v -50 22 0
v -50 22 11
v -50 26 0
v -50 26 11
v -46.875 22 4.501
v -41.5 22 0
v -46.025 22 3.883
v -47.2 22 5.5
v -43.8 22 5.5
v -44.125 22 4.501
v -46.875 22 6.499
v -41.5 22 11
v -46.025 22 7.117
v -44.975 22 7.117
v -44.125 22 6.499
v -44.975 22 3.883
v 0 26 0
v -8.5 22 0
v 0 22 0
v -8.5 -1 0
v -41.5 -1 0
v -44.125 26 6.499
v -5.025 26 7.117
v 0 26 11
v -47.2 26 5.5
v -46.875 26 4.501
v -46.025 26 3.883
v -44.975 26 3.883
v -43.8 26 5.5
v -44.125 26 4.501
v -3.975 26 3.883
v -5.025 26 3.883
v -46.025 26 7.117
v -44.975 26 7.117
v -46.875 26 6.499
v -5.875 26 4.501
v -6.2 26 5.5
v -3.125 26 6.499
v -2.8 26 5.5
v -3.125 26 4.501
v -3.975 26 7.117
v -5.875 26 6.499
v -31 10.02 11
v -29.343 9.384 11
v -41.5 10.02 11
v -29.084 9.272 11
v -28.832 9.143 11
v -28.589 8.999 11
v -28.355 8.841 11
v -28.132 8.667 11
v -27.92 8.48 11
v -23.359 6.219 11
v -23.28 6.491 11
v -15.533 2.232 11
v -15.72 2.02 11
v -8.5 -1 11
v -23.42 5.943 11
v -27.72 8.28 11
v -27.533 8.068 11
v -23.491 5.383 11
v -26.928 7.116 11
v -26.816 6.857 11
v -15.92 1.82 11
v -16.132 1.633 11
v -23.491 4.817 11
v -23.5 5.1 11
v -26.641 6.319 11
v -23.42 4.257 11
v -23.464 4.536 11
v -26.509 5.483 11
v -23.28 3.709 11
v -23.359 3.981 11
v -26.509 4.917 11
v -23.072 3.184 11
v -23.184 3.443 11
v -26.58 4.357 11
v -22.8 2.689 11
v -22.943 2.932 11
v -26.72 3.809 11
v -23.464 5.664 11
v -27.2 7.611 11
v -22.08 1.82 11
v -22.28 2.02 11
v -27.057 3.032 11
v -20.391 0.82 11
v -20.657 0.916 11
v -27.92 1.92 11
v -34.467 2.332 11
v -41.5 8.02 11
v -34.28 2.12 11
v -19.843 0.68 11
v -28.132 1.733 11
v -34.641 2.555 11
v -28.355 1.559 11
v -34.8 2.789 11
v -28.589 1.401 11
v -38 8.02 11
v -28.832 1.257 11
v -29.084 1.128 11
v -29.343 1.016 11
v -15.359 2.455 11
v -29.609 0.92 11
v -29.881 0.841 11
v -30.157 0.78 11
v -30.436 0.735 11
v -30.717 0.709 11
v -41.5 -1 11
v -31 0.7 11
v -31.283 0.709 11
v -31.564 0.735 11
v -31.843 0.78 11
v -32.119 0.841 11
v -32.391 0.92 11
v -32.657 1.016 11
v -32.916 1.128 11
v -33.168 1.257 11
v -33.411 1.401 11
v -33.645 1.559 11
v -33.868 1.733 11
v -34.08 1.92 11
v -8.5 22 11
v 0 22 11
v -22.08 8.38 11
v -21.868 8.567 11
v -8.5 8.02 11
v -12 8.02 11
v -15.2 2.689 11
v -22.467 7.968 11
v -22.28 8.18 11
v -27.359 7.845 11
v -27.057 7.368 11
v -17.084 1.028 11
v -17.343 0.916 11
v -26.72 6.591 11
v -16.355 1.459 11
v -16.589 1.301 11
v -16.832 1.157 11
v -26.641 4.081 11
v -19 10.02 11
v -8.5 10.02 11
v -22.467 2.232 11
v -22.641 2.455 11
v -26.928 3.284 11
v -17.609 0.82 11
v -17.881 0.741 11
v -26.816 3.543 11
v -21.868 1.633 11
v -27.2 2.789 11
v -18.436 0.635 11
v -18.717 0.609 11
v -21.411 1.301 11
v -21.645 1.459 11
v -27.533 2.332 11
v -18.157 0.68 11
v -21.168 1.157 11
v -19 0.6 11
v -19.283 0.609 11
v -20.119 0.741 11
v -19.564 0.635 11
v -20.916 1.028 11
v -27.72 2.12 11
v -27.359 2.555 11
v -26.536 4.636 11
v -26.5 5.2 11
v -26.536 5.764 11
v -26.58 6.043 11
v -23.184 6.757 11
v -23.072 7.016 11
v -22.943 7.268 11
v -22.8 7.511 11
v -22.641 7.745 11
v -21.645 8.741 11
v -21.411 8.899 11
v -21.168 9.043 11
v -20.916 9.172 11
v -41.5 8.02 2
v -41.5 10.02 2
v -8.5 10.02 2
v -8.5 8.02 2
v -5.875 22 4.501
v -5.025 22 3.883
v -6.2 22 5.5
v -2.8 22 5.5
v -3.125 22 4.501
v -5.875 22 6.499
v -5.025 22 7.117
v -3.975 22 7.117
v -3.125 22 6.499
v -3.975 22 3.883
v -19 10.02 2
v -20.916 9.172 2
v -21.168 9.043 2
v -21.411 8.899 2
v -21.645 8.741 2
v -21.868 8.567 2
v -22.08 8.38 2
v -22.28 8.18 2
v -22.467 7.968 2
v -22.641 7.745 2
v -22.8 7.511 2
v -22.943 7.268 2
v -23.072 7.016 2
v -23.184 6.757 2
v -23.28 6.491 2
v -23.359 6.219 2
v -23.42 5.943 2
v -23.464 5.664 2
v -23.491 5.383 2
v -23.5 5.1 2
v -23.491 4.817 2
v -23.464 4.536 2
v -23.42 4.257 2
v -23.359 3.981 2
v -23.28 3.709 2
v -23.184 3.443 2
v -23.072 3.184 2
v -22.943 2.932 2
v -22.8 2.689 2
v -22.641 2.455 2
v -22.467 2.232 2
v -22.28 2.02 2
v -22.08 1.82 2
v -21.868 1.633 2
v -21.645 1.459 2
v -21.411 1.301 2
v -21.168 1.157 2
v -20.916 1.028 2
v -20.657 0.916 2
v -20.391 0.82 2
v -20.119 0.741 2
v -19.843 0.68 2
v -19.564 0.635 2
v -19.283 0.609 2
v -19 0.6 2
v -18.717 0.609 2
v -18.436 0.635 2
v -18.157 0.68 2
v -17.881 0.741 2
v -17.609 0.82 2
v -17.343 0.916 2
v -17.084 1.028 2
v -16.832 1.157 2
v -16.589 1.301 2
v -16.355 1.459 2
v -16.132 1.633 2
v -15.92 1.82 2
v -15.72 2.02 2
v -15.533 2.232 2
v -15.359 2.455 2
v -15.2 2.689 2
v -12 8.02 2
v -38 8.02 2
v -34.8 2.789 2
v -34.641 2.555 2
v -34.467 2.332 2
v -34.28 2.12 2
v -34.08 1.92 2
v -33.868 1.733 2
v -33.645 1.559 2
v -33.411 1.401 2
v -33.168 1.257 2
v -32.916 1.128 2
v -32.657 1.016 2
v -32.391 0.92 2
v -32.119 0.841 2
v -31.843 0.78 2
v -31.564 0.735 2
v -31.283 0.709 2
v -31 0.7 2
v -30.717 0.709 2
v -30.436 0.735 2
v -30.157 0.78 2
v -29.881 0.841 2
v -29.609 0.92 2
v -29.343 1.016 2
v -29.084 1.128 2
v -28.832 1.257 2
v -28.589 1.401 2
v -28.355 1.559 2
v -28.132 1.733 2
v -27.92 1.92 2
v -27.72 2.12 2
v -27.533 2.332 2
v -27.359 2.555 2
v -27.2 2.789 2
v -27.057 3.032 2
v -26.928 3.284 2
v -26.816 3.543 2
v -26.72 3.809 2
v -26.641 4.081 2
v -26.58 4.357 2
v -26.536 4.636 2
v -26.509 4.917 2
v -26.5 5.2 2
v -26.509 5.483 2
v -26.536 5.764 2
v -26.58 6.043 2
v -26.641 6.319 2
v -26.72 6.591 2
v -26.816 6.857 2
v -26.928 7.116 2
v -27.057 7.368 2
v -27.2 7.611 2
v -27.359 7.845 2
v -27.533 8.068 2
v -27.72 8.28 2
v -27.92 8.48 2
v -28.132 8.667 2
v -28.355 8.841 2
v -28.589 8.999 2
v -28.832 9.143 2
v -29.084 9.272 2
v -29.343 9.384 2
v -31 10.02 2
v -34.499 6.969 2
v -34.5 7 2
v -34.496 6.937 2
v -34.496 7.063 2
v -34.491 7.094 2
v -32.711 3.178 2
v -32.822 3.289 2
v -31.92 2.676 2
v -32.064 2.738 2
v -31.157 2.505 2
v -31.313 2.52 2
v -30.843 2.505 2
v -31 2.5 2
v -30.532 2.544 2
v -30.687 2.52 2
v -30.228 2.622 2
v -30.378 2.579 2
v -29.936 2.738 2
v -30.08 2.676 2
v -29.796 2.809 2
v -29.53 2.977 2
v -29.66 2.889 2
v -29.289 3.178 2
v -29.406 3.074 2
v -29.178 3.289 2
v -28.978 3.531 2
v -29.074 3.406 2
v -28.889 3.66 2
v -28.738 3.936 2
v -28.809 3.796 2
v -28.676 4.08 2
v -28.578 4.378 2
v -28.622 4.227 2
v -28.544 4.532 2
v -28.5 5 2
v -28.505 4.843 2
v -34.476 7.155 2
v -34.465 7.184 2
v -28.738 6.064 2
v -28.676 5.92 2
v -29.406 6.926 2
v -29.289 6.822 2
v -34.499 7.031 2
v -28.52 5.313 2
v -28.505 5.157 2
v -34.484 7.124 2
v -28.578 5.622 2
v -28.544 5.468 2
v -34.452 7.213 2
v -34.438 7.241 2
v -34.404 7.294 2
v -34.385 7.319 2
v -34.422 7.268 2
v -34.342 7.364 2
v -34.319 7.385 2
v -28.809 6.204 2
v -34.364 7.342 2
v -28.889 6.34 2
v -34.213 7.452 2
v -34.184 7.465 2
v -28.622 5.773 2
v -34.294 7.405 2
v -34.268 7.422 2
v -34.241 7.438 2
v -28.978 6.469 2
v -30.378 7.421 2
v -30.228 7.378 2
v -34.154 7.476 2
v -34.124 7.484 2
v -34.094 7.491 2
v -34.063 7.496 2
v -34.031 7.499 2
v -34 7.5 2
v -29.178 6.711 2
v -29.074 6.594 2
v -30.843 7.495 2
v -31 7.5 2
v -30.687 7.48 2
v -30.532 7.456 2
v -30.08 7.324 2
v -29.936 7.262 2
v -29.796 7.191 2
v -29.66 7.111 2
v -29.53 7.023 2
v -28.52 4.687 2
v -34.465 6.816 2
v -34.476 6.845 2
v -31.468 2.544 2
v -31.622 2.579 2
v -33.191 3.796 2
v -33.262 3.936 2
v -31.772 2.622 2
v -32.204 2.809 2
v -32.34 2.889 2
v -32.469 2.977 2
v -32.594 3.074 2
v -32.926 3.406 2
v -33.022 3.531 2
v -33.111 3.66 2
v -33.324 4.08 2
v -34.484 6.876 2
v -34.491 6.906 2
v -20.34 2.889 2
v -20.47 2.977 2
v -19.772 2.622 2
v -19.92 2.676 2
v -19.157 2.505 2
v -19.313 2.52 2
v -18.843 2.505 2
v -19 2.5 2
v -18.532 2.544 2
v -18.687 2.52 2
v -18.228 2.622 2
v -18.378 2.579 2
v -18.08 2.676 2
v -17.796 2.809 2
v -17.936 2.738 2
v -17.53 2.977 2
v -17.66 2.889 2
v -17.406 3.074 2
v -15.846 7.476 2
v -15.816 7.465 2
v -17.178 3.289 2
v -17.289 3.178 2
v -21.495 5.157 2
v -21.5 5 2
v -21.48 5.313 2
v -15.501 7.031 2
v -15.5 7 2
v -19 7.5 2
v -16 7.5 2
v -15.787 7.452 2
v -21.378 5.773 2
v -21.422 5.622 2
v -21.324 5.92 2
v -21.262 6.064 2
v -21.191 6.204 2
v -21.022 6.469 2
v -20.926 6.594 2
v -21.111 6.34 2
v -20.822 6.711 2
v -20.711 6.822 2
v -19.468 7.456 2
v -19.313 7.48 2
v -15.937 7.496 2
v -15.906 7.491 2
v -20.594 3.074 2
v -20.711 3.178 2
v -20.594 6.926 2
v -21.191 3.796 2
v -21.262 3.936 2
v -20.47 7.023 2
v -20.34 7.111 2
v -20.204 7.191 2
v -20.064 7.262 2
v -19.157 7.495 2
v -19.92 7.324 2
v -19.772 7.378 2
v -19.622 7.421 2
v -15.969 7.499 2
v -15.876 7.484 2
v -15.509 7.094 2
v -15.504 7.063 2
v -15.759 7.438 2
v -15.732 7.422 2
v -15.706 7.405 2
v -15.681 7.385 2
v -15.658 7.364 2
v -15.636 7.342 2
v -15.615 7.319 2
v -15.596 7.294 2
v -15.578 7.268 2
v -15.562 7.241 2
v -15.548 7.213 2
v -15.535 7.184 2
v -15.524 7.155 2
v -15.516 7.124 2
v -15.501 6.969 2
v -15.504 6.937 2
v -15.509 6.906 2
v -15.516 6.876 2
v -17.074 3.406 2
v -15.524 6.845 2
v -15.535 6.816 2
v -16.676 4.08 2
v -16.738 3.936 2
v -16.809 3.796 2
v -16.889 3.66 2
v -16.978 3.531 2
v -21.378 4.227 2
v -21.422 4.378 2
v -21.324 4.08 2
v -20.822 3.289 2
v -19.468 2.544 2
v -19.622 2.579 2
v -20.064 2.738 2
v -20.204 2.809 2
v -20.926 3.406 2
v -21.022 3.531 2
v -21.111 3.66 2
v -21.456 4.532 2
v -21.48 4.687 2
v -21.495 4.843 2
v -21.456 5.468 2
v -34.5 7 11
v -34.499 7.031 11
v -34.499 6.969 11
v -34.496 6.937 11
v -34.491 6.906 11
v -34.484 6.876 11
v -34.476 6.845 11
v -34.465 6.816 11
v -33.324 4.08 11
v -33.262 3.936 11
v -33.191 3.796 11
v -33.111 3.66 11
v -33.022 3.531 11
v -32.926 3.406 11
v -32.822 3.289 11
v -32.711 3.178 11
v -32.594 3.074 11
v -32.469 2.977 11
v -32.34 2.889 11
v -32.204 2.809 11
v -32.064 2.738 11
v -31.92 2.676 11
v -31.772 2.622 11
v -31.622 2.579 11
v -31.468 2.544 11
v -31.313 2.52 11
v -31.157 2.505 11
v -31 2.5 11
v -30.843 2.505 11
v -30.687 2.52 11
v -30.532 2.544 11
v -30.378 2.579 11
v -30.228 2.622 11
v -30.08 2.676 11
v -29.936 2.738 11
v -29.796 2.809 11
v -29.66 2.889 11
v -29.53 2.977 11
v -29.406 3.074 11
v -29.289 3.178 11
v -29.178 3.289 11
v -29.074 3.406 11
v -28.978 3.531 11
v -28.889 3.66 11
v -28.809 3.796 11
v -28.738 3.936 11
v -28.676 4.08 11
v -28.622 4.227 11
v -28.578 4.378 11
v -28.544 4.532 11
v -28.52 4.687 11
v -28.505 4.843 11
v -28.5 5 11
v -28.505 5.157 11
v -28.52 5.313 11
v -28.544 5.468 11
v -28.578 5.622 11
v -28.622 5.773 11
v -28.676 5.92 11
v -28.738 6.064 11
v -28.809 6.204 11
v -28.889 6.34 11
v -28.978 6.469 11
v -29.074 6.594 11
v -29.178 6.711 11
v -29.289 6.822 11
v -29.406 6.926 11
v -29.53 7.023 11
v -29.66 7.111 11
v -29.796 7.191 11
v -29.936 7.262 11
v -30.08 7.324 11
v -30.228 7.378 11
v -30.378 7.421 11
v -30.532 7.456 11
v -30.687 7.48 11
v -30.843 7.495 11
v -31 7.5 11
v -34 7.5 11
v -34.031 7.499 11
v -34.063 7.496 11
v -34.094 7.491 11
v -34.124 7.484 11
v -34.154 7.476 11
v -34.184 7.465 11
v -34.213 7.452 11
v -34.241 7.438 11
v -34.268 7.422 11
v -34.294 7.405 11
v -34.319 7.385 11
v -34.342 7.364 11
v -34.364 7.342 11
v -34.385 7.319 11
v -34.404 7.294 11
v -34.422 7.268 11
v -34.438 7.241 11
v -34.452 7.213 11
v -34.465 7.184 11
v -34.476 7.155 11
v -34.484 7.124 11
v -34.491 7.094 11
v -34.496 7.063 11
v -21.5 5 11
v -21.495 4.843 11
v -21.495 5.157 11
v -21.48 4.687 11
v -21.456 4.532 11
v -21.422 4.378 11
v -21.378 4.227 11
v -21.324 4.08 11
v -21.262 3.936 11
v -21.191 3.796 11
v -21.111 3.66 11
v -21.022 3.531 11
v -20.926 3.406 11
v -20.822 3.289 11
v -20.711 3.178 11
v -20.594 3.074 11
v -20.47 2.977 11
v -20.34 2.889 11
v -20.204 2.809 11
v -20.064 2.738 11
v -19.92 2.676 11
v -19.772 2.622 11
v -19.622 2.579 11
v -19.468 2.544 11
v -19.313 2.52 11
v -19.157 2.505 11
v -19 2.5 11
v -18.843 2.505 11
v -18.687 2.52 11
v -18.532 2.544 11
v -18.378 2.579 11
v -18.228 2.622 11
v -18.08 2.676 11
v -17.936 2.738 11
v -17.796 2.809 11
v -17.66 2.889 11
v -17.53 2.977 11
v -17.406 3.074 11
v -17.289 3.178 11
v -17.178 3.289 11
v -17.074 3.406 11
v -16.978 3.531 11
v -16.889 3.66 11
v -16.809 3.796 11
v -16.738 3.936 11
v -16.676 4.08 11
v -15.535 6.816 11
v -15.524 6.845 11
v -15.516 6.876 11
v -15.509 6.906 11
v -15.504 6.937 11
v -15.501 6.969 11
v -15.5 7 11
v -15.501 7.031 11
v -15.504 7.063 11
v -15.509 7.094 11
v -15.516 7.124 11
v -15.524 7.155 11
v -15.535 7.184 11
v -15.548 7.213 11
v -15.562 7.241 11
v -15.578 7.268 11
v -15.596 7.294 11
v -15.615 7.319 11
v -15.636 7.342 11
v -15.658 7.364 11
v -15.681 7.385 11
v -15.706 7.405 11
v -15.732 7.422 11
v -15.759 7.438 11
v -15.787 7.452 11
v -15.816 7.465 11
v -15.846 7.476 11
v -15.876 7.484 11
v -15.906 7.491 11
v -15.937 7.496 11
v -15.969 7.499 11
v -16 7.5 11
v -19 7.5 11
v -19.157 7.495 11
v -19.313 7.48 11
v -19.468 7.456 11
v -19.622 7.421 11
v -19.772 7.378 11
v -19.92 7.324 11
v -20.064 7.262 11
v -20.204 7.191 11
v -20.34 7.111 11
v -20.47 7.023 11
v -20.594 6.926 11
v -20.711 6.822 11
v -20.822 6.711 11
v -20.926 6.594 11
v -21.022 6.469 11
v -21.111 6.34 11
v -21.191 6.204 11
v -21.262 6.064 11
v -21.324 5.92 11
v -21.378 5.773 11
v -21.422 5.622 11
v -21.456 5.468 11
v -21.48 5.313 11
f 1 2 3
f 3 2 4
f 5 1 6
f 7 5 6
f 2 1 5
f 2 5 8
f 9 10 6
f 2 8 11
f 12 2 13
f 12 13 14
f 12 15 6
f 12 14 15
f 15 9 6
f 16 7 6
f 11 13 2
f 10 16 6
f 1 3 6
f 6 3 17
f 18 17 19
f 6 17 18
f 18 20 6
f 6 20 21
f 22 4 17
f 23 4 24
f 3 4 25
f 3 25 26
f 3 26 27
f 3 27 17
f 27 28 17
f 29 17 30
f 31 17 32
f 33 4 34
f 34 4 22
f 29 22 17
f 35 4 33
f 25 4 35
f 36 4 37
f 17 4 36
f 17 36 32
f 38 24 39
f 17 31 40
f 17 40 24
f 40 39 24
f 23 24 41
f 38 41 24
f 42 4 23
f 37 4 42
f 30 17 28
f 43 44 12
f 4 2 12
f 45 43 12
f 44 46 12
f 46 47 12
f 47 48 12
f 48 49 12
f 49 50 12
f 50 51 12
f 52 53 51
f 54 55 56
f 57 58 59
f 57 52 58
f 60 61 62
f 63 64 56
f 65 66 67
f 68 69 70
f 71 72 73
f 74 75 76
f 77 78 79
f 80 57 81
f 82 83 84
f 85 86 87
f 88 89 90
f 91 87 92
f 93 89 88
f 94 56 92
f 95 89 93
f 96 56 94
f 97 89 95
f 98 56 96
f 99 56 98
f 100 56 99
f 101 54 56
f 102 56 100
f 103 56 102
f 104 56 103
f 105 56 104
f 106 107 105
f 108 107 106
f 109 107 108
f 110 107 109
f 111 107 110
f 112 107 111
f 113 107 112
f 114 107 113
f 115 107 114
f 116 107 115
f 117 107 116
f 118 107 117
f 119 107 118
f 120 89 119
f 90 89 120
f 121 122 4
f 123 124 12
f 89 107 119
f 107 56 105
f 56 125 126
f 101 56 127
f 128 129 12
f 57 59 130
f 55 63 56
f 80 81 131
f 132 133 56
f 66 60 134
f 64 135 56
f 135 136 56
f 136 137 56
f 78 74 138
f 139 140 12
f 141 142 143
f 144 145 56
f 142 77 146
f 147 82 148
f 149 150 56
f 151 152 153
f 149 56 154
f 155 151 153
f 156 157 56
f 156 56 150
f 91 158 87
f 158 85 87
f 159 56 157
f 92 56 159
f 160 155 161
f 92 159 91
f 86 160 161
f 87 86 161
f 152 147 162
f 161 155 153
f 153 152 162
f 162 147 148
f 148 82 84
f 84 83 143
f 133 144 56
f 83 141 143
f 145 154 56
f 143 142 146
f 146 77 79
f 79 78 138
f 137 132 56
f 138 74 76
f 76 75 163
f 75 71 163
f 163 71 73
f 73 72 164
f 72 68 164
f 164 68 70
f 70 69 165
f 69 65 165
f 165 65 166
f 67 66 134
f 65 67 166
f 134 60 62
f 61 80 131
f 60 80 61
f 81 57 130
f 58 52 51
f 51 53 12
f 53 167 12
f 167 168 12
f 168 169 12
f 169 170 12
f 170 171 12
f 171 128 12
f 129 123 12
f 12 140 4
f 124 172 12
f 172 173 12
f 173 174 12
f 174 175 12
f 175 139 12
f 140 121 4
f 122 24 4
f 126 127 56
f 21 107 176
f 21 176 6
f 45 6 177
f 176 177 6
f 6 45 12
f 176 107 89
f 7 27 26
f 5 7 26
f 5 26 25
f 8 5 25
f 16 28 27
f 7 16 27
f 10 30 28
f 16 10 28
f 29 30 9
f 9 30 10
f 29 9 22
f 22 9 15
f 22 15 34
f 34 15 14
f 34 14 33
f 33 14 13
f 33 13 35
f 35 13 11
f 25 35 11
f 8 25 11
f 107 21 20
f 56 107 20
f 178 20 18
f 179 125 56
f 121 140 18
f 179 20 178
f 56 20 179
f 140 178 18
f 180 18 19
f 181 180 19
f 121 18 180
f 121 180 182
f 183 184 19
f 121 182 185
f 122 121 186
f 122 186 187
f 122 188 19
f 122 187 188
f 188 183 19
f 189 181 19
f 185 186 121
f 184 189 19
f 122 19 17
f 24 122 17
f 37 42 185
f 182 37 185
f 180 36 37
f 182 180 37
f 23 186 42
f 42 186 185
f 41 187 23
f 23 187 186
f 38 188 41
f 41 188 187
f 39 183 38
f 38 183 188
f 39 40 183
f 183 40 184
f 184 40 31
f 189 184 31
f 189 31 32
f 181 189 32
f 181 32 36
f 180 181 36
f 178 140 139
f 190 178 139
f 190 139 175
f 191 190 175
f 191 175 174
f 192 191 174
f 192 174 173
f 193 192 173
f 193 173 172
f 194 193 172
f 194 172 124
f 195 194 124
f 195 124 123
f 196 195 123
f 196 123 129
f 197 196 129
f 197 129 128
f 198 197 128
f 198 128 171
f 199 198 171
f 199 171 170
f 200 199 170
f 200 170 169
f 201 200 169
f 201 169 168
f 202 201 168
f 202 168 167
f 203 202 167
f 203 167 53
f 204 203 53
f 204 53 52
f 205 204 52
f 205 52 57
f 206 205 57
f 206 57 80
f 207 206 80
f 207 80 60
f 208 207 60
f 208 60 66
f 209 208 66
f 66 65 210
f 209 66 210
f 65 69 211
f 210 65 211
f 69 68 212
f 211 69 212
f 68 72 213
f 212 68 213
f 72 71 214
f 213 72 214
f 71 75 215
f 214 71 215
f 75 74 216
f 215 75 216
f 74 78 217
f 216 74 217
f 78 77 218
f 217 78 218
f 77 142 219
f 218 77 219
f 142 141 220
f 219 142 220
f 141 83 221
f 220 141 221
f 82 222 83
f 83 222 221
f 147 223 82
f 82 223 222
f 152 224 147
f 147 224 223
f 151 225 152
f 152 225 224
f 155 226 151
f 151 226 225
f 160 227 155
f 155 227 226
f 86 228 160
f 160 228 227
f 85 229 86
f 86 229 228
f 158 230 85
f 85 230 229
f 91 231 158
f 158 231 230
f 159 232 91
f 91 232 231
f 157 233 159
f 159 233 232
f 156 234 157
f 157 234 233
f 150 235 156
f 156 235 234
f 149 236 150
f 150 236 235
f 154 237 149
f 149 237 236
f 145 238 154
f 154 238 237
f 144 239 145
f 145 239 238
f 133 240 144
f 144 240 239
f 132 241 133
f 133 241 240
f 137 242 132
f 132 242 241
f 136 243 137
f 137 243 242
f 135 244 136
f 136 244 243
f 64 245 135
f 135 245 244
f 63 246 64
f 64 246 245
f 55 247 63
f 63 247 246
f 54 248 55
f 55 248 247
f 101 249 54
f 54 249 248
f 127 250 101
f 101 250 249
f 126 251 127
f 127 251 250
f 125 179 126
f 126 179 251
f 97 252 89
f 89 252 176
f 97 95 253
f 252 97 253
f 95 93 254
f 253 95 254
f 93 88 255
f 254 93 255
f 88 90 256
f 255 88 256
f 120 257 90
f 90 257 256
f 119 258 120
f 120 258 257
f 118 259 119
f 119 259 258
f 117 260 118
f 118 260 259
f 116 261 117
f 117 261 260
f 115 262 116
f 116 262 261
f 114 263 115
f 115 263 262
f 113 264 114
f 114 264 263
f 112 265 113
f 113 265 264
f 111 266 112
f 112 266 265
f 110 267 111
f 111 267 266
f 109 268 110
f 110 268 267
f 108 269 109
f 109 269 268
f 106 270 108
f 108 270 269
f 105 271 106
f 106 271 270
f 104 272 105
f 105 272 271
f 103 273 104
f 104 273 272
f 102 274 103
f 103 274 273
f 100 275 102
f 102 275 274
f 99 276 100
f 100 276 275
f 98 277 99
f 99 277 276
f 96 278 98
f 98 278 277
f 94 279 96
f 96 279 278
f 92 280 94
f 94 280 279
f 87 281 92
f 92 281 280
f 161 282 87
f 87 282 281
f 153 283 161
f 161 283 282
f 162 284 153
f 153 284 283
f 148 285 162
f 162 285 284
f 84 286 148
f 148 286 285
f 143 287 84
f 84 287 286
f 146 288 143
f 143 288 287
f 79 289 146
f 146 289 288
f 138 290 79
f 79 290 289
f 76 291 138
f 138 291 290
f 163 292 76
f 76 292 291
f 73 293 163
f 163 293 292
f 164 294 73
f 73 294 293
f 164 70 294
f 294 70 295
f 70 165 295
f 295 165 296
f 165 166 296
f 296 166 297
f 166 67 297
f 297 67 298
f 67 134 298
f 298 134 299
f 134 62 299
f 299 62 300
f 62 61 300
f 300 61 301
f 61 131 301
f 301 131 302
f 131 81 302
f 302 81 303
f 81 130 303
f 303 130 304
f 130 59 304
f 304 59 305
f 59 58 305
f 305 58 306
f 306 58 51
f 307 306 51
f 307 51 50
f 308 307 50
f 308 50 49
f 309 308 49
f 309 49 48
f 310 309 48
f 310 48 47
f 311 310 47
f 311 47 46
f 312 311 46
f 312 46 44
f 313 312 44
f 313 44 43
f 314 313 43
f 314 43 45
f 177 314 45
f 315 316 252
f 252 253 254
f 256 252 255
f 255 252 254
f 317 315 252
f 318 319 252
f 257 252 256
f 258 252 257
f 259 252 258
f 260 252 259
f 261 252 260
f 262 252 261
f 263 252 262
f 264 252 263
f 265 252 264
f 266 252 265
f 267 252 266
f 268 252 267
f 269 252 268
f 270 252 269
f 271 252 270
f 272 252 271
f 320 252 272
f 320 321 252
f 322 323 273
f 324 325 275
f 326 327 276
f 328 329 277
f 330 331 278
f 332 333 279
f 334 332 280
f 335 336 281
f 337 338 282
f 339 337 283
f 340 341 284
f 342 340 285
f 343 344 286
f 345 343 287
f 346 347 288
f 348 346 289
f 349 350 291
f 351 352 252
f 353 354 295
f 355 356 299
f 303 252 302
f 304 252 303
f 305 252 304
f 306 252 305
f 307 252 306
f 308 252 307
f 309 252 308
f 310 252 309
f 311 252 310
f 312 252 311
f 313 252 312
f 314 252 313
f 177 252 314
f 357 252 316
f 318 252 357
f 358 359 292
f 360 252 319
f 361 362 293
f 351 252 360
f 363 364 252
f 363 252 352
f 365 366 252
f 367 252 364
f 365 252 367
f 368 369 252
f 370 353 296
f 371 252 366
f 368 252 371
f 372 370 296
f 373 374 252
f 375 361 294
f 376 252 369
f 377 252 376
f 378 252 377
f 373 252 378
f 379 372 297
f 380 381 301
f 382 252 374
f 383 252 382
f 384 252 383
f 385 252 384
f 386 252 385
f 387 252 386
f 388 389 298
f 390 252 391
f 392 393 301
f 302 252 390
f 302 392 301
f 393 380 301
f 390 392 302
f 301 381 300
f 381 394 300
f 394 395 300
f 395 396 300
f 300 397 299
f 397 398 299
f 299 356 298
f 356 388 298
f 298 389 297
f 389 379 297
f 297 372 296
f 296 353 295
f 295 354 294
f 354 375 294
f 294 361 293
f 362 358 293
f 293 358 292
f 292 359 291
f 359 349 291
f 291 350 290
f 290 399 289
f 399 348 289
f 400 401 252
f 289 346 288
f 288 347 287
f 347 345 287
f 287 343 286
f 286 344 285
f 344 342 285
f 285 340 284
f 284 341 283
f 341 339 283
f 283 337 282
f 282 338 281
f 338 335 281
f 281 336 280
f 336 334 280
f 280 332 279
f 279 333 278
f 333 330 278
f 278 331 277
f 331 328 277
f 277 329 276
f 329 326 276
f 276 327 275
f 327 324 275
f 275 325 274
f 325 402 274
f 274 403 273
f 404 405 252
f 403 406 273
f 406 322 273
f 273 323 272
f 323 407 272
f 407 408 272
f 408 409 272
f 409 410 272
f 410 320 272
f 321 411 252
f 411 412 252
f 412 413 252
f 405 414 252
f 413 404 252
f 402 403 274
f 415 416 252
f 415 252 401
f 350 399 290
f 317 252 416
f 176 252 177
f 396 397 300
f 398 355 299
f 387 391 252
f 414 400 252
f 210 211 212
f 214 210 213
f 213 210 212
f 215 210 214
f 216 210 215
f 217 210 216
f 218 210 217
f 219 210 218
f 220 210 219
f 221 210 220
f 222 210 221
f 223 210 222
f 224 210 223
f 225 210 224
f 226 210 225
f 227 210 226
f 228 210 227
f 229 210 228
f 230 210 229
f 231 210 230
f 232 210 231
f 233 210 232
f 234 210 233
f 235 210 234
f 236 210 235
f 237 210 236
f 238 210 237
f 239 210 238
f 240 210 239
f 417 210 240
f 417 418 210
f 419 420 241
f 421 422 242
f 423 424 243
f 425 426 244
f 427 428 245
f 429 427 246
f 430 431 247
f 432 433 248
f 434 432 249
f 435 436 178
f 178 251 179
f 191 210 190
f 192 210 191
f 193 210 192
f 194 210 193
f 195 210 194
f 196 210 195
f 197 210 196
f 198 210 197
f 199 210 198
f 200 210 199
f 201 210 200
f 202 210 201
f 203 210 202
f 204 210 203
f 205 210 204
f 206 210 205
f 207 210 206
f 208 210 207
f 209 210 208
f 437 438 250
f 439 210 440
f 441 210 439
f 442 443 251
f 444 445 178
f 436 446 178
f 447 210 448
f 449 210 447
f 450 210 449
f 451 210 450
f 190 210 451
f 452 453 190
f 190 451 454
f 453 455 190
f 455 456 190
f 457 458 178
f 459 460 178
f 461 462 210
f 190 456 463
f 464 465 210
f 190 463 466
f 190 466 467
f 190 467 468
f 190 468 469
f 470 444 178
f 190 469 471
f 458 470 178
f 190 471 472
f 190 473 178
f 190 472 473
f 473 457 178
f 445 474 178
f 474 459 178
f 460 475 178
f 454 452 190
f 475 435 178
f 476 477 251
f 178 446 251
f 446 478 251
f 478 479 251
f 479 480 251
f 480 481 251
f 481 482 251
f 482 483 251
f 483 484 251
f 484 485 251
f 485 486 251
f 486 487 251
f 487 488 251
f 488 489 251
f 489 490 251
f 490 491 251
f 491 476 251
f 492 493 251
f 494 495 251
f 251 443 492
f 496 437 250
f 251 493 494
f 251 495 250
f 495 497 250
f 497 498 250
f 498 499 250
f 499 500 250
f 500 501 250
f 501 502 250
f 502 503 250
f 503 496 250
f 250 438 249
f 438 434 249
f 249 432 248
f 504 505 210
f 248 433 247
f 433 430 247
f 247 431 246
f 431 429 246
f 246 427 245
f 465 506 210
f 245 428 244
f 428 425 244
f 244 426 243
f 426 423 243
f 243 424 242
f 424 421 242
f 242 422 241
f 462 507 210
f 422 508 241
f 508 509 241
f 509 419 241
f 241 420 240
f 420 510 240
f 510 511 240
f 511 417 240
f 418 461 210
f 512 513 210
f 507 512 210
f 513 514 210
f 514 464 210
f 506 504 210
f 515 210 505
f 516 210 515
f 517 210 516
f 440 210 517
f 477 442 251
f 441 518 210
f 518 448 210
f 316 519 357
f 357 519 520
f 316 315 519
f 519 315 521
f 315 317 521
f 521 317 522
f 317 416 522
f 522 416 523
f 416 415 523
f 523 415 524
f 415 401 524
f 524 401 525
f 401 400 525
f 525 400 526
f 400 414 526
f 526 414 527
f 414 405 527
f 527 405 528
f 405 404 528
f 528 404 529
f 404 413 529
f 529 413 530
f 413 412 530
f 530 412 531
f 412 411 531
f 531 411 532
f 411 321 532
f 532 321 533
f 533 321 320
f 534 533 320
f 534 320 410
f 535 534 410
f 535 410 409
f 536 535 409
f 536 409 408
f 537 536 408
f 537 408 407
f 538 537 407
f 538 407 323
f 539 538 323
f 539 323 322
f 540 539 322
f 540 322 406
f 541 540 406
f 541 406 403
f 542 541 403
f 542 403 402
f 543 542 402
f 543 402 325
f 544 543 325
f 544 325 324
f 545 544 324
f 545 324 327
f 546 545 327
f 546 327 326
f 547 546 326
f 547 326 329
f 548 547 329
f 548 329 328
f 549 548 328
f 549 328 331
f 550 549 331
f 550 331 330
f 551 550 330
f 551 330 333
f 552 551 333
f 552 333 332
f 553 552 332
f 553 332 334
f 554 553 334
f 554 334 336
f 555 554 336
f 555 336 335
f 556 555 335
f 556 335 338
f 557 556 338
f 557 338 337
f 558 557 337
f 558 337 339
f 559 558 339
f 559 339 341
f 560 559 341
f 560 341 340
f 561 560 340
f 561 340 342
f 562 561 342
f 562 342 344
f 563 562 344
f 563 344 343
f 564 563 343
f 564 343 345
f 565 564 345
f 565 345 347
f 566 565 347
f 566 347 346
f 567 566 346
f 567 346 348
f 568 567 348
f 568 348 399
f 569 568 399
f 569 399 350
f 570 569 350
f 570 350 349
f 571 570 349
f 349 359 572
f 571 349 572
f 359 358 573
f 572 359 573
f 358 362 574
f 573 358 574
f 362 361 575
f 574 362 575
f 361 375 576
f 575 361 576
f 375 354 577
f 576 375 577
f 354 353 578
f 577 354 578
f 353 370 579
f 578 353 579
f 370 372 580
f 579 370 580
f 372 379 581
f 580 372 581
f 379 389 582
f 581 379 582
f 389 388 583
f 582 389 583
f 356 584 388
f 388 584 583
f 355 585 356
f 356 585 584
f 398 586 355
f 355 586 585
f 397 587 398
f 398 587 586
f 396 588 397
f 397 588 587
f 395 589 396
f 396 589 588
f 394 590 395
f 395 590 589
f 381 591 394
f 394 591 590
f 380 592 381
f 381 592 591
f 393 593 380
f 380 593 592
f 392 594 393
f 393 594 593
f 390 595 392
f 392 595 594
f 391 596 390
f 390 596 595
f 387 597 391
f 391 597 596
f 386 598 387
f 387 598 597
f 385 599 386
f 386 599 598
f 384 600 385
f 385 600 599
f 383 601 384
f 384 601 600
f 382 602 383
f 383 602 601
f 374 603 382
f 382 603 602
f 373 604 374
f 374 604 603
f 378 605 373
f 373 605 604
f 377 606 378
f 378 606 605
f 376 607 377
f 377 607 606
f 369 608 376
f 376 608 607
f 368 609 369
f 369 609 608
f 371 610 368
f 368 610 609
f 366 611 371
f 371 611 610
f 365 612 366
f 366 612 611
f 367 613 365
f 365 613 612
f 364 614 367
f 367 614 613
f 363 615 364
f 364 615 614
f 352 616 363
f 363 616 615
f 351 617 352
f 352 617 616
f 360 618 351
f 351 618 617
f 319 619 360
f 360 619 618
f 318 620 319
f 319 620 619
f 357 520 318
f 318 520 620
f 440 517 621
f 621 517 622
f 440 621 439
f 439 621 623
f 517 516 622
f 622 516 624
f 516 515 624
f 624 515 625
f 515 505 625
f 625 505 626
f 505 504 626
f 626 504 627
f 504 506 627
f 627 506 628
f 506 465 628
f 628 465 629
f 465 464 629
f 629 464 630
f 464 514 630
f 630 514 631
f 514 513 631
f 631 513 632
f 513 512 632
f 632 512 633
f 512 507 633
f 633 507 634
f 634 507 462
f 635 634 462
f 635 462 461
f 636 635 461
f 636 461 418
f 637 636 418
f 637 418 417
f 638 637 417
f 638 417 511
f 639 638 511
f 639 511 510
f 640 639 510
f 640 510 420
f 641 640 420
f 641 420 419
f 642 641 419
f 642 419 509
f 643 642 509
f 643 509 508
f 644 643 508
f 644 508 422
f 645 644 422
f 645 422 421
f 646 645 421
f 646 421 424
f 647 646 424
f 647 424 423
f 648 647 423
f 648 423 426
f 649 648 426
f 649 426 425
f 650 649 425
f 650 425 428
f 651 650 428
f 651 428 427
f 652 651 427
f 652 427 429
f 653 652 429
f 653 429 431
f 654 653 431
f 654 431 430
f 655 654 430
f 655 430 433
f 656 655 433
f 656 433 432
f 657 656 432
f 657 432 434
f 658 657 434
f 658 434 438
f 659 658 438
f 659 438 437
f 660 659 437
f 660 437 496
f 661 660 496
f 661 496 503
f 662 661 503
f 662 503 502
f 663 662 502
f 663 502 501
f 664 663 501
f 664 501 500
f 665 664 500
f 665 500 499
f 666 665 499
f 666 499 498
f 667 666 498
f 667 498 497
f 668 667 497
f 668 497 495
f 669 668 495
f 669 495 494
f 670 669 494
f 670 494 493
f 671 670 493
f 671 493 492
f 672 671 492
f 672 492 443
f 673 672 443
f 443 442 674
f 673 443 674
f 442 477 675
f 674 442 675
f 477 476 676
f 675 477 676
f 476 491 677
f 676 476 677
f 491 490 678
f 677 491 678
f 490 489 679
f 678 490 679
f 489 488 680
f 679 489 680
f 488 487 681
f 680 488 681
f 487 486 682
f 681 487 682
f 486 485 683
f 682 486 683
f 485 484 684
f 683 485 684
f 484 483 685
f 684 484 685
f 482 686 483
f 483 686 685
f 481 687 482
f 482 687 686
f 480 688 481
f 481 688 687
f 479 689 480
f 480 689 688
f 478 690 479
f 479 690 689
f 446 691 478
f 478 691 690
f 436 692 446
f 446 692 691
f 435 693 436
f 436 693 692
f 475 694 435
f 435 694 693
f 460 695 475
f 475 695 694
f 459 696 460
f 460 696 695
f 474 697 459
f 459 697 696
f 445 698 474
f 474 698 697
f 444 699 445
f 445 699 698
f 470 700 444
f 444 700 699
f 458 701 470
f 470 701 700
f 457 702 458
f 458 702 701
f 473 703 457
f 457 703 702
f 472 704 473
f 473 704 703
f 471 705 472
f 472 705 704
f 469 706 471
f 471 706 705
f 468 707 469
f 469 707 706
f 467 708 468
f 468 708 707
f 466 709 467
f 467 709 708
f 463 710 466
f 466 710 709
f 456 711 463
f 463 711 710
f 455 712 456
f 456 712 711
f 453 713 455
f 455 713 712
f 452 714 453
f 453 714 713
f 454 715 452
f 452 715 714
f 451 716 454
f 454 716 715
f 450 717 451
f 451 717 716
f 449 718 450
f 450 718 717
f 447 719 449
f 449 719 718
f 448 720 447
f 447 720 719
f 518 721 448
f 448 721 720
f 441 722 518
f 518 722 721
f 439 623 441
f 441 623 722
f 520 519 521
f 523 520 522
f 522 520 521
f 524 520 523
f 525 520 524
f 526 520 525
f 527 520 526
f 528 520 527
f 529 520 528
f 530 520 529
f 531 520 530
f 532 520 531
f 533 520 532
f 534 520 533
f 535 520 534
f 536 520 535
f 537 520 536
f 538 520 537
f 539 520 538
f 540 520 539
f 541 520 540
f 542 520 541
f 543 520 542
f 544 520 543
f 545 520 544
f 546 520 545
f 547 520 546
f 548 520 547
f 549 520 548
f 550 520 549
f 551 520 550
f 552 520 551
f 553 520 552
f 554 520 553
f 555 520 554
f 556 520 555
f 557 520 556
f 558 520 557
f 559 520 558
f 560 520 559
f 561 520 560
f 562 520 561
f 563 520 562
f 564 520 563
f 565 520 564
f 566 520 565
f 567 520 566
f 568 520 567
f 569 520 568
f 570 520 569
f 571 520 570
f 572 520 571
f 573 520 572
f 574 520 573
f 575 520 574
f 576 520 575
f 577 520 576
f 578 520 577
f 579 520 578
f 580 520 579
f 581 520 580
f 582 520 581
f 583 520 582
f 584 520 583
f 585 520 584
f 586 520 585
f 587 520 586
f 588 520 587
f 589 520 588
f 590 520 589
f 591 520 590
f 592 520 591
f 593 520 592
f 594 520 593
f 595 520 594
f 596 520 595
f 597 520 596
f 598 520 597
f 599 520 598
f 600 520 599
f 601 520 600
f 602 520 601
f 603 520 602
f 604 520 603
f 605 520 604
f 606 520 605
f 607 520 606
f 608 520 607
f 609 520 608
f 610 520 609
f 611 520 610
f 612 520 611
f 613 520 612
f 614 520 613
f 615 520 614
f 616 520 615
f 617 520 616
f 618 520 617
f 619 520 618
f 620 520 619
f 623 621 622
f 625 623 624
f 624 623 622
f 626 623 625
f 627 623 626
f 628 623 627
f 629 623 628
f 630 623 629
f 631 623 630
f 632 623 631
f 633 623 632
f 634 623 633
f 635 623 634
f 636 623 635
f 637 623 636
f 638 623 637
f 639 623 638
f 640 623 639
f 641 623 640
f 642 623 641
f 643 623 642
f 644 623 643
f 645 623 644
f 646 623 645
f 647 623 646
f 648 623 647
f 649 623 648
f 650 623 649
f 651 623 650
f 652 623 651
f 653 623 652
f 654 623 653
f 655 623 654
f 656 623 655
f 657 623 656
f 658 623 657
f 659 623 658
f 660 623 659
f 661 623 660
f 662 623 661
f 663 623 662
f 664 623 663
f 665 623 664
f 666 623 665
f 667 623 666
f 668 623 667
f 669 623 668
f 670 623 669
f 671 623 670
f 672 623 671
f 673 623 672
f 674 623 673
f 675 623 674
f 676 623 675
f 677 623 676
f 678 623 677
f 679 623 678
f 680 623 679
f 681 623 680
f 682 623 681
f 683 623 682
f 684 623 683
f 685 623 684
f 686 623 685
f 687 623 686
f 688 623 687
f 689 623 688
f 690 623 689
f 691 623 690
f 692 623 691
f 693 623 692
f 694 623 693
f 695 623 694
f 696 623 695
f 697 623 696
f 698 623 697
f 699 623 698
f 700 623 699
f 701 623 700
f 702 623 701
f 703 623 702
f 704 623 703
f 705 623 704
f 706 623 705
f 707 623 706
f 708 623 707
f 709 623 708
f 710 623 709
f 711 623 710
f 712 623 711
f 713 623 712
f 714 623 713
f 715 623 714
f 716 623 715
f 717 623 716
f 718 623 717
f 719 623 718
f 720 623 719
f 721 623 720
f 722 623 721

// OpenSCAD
// Y belt holder self locking
// Based on Josef Prusa vanilla y-belt-holder design (https://github.com/josefprusa/Prusa3-vanilla)
// By Julio Galaron (@jgalaron)
// GNU GPL v3

module belt_holder_base(){
 	translate([-33-8.5,-1,0]) cube([33,15,11]); 
 	translate([-33-8.5,11,0]) cube([33,15,11]);
 	translate([-50,22,0]) cube([50,4,11]);	
}

module belt_holder_beltcut(){
	translate([-9,-22.4,-4])union(){
		translate([-10,30.42,6]) cube([18,2,15]);

		hull(){
			translate([-10,30.42,6]) cube([7,2,15]);
			translate([-10,27.5,6])cylinder(r=9/2, h=20, $fn=100);
		}
	}

	translate([-21,-22.3,-4])union(){
		translate([-28,30.32,6]) cube([18,2,15]);

		hull(){
			translate([-17,30.32,6]) cube([7,2,15]);
			translate([-10,27.5,6])cylinder(r=9/2, h=20, $fn=100);
		}
	}
}

module belt_holder_holes(){
	translate([-4.5,0,5.5])  rotate([-90,0,0]) cylinder(h=30, r=1.7, $fn=10);
	translate([-45.5,0,5.5]) rotate([-90,0,0]) cylinder(h=30, r=1.7, $fn=10);
}


module belt_holder(){
	difference(){
 		belt_holder_base();
  		belt_holder_beltcut();
  		belt_holder_holes();
 	}
	
	translate([-19,5,0]){
		hull(){
			cylinder(r=5/2, h=11, $fn=100); 
			translate([3,2,0]) cylinder(r=1/2, h=11, $fn=100); 
		}
	}
	translate([-31,5,0]){
		hull(){
			cylinder(r=5/2, h=11, $fn=100); 
			translate([-3,2,0]) cylinder(r=1/2, h=11, $fn=100); 
		}
	}
}

// Final part
belt_holder();
